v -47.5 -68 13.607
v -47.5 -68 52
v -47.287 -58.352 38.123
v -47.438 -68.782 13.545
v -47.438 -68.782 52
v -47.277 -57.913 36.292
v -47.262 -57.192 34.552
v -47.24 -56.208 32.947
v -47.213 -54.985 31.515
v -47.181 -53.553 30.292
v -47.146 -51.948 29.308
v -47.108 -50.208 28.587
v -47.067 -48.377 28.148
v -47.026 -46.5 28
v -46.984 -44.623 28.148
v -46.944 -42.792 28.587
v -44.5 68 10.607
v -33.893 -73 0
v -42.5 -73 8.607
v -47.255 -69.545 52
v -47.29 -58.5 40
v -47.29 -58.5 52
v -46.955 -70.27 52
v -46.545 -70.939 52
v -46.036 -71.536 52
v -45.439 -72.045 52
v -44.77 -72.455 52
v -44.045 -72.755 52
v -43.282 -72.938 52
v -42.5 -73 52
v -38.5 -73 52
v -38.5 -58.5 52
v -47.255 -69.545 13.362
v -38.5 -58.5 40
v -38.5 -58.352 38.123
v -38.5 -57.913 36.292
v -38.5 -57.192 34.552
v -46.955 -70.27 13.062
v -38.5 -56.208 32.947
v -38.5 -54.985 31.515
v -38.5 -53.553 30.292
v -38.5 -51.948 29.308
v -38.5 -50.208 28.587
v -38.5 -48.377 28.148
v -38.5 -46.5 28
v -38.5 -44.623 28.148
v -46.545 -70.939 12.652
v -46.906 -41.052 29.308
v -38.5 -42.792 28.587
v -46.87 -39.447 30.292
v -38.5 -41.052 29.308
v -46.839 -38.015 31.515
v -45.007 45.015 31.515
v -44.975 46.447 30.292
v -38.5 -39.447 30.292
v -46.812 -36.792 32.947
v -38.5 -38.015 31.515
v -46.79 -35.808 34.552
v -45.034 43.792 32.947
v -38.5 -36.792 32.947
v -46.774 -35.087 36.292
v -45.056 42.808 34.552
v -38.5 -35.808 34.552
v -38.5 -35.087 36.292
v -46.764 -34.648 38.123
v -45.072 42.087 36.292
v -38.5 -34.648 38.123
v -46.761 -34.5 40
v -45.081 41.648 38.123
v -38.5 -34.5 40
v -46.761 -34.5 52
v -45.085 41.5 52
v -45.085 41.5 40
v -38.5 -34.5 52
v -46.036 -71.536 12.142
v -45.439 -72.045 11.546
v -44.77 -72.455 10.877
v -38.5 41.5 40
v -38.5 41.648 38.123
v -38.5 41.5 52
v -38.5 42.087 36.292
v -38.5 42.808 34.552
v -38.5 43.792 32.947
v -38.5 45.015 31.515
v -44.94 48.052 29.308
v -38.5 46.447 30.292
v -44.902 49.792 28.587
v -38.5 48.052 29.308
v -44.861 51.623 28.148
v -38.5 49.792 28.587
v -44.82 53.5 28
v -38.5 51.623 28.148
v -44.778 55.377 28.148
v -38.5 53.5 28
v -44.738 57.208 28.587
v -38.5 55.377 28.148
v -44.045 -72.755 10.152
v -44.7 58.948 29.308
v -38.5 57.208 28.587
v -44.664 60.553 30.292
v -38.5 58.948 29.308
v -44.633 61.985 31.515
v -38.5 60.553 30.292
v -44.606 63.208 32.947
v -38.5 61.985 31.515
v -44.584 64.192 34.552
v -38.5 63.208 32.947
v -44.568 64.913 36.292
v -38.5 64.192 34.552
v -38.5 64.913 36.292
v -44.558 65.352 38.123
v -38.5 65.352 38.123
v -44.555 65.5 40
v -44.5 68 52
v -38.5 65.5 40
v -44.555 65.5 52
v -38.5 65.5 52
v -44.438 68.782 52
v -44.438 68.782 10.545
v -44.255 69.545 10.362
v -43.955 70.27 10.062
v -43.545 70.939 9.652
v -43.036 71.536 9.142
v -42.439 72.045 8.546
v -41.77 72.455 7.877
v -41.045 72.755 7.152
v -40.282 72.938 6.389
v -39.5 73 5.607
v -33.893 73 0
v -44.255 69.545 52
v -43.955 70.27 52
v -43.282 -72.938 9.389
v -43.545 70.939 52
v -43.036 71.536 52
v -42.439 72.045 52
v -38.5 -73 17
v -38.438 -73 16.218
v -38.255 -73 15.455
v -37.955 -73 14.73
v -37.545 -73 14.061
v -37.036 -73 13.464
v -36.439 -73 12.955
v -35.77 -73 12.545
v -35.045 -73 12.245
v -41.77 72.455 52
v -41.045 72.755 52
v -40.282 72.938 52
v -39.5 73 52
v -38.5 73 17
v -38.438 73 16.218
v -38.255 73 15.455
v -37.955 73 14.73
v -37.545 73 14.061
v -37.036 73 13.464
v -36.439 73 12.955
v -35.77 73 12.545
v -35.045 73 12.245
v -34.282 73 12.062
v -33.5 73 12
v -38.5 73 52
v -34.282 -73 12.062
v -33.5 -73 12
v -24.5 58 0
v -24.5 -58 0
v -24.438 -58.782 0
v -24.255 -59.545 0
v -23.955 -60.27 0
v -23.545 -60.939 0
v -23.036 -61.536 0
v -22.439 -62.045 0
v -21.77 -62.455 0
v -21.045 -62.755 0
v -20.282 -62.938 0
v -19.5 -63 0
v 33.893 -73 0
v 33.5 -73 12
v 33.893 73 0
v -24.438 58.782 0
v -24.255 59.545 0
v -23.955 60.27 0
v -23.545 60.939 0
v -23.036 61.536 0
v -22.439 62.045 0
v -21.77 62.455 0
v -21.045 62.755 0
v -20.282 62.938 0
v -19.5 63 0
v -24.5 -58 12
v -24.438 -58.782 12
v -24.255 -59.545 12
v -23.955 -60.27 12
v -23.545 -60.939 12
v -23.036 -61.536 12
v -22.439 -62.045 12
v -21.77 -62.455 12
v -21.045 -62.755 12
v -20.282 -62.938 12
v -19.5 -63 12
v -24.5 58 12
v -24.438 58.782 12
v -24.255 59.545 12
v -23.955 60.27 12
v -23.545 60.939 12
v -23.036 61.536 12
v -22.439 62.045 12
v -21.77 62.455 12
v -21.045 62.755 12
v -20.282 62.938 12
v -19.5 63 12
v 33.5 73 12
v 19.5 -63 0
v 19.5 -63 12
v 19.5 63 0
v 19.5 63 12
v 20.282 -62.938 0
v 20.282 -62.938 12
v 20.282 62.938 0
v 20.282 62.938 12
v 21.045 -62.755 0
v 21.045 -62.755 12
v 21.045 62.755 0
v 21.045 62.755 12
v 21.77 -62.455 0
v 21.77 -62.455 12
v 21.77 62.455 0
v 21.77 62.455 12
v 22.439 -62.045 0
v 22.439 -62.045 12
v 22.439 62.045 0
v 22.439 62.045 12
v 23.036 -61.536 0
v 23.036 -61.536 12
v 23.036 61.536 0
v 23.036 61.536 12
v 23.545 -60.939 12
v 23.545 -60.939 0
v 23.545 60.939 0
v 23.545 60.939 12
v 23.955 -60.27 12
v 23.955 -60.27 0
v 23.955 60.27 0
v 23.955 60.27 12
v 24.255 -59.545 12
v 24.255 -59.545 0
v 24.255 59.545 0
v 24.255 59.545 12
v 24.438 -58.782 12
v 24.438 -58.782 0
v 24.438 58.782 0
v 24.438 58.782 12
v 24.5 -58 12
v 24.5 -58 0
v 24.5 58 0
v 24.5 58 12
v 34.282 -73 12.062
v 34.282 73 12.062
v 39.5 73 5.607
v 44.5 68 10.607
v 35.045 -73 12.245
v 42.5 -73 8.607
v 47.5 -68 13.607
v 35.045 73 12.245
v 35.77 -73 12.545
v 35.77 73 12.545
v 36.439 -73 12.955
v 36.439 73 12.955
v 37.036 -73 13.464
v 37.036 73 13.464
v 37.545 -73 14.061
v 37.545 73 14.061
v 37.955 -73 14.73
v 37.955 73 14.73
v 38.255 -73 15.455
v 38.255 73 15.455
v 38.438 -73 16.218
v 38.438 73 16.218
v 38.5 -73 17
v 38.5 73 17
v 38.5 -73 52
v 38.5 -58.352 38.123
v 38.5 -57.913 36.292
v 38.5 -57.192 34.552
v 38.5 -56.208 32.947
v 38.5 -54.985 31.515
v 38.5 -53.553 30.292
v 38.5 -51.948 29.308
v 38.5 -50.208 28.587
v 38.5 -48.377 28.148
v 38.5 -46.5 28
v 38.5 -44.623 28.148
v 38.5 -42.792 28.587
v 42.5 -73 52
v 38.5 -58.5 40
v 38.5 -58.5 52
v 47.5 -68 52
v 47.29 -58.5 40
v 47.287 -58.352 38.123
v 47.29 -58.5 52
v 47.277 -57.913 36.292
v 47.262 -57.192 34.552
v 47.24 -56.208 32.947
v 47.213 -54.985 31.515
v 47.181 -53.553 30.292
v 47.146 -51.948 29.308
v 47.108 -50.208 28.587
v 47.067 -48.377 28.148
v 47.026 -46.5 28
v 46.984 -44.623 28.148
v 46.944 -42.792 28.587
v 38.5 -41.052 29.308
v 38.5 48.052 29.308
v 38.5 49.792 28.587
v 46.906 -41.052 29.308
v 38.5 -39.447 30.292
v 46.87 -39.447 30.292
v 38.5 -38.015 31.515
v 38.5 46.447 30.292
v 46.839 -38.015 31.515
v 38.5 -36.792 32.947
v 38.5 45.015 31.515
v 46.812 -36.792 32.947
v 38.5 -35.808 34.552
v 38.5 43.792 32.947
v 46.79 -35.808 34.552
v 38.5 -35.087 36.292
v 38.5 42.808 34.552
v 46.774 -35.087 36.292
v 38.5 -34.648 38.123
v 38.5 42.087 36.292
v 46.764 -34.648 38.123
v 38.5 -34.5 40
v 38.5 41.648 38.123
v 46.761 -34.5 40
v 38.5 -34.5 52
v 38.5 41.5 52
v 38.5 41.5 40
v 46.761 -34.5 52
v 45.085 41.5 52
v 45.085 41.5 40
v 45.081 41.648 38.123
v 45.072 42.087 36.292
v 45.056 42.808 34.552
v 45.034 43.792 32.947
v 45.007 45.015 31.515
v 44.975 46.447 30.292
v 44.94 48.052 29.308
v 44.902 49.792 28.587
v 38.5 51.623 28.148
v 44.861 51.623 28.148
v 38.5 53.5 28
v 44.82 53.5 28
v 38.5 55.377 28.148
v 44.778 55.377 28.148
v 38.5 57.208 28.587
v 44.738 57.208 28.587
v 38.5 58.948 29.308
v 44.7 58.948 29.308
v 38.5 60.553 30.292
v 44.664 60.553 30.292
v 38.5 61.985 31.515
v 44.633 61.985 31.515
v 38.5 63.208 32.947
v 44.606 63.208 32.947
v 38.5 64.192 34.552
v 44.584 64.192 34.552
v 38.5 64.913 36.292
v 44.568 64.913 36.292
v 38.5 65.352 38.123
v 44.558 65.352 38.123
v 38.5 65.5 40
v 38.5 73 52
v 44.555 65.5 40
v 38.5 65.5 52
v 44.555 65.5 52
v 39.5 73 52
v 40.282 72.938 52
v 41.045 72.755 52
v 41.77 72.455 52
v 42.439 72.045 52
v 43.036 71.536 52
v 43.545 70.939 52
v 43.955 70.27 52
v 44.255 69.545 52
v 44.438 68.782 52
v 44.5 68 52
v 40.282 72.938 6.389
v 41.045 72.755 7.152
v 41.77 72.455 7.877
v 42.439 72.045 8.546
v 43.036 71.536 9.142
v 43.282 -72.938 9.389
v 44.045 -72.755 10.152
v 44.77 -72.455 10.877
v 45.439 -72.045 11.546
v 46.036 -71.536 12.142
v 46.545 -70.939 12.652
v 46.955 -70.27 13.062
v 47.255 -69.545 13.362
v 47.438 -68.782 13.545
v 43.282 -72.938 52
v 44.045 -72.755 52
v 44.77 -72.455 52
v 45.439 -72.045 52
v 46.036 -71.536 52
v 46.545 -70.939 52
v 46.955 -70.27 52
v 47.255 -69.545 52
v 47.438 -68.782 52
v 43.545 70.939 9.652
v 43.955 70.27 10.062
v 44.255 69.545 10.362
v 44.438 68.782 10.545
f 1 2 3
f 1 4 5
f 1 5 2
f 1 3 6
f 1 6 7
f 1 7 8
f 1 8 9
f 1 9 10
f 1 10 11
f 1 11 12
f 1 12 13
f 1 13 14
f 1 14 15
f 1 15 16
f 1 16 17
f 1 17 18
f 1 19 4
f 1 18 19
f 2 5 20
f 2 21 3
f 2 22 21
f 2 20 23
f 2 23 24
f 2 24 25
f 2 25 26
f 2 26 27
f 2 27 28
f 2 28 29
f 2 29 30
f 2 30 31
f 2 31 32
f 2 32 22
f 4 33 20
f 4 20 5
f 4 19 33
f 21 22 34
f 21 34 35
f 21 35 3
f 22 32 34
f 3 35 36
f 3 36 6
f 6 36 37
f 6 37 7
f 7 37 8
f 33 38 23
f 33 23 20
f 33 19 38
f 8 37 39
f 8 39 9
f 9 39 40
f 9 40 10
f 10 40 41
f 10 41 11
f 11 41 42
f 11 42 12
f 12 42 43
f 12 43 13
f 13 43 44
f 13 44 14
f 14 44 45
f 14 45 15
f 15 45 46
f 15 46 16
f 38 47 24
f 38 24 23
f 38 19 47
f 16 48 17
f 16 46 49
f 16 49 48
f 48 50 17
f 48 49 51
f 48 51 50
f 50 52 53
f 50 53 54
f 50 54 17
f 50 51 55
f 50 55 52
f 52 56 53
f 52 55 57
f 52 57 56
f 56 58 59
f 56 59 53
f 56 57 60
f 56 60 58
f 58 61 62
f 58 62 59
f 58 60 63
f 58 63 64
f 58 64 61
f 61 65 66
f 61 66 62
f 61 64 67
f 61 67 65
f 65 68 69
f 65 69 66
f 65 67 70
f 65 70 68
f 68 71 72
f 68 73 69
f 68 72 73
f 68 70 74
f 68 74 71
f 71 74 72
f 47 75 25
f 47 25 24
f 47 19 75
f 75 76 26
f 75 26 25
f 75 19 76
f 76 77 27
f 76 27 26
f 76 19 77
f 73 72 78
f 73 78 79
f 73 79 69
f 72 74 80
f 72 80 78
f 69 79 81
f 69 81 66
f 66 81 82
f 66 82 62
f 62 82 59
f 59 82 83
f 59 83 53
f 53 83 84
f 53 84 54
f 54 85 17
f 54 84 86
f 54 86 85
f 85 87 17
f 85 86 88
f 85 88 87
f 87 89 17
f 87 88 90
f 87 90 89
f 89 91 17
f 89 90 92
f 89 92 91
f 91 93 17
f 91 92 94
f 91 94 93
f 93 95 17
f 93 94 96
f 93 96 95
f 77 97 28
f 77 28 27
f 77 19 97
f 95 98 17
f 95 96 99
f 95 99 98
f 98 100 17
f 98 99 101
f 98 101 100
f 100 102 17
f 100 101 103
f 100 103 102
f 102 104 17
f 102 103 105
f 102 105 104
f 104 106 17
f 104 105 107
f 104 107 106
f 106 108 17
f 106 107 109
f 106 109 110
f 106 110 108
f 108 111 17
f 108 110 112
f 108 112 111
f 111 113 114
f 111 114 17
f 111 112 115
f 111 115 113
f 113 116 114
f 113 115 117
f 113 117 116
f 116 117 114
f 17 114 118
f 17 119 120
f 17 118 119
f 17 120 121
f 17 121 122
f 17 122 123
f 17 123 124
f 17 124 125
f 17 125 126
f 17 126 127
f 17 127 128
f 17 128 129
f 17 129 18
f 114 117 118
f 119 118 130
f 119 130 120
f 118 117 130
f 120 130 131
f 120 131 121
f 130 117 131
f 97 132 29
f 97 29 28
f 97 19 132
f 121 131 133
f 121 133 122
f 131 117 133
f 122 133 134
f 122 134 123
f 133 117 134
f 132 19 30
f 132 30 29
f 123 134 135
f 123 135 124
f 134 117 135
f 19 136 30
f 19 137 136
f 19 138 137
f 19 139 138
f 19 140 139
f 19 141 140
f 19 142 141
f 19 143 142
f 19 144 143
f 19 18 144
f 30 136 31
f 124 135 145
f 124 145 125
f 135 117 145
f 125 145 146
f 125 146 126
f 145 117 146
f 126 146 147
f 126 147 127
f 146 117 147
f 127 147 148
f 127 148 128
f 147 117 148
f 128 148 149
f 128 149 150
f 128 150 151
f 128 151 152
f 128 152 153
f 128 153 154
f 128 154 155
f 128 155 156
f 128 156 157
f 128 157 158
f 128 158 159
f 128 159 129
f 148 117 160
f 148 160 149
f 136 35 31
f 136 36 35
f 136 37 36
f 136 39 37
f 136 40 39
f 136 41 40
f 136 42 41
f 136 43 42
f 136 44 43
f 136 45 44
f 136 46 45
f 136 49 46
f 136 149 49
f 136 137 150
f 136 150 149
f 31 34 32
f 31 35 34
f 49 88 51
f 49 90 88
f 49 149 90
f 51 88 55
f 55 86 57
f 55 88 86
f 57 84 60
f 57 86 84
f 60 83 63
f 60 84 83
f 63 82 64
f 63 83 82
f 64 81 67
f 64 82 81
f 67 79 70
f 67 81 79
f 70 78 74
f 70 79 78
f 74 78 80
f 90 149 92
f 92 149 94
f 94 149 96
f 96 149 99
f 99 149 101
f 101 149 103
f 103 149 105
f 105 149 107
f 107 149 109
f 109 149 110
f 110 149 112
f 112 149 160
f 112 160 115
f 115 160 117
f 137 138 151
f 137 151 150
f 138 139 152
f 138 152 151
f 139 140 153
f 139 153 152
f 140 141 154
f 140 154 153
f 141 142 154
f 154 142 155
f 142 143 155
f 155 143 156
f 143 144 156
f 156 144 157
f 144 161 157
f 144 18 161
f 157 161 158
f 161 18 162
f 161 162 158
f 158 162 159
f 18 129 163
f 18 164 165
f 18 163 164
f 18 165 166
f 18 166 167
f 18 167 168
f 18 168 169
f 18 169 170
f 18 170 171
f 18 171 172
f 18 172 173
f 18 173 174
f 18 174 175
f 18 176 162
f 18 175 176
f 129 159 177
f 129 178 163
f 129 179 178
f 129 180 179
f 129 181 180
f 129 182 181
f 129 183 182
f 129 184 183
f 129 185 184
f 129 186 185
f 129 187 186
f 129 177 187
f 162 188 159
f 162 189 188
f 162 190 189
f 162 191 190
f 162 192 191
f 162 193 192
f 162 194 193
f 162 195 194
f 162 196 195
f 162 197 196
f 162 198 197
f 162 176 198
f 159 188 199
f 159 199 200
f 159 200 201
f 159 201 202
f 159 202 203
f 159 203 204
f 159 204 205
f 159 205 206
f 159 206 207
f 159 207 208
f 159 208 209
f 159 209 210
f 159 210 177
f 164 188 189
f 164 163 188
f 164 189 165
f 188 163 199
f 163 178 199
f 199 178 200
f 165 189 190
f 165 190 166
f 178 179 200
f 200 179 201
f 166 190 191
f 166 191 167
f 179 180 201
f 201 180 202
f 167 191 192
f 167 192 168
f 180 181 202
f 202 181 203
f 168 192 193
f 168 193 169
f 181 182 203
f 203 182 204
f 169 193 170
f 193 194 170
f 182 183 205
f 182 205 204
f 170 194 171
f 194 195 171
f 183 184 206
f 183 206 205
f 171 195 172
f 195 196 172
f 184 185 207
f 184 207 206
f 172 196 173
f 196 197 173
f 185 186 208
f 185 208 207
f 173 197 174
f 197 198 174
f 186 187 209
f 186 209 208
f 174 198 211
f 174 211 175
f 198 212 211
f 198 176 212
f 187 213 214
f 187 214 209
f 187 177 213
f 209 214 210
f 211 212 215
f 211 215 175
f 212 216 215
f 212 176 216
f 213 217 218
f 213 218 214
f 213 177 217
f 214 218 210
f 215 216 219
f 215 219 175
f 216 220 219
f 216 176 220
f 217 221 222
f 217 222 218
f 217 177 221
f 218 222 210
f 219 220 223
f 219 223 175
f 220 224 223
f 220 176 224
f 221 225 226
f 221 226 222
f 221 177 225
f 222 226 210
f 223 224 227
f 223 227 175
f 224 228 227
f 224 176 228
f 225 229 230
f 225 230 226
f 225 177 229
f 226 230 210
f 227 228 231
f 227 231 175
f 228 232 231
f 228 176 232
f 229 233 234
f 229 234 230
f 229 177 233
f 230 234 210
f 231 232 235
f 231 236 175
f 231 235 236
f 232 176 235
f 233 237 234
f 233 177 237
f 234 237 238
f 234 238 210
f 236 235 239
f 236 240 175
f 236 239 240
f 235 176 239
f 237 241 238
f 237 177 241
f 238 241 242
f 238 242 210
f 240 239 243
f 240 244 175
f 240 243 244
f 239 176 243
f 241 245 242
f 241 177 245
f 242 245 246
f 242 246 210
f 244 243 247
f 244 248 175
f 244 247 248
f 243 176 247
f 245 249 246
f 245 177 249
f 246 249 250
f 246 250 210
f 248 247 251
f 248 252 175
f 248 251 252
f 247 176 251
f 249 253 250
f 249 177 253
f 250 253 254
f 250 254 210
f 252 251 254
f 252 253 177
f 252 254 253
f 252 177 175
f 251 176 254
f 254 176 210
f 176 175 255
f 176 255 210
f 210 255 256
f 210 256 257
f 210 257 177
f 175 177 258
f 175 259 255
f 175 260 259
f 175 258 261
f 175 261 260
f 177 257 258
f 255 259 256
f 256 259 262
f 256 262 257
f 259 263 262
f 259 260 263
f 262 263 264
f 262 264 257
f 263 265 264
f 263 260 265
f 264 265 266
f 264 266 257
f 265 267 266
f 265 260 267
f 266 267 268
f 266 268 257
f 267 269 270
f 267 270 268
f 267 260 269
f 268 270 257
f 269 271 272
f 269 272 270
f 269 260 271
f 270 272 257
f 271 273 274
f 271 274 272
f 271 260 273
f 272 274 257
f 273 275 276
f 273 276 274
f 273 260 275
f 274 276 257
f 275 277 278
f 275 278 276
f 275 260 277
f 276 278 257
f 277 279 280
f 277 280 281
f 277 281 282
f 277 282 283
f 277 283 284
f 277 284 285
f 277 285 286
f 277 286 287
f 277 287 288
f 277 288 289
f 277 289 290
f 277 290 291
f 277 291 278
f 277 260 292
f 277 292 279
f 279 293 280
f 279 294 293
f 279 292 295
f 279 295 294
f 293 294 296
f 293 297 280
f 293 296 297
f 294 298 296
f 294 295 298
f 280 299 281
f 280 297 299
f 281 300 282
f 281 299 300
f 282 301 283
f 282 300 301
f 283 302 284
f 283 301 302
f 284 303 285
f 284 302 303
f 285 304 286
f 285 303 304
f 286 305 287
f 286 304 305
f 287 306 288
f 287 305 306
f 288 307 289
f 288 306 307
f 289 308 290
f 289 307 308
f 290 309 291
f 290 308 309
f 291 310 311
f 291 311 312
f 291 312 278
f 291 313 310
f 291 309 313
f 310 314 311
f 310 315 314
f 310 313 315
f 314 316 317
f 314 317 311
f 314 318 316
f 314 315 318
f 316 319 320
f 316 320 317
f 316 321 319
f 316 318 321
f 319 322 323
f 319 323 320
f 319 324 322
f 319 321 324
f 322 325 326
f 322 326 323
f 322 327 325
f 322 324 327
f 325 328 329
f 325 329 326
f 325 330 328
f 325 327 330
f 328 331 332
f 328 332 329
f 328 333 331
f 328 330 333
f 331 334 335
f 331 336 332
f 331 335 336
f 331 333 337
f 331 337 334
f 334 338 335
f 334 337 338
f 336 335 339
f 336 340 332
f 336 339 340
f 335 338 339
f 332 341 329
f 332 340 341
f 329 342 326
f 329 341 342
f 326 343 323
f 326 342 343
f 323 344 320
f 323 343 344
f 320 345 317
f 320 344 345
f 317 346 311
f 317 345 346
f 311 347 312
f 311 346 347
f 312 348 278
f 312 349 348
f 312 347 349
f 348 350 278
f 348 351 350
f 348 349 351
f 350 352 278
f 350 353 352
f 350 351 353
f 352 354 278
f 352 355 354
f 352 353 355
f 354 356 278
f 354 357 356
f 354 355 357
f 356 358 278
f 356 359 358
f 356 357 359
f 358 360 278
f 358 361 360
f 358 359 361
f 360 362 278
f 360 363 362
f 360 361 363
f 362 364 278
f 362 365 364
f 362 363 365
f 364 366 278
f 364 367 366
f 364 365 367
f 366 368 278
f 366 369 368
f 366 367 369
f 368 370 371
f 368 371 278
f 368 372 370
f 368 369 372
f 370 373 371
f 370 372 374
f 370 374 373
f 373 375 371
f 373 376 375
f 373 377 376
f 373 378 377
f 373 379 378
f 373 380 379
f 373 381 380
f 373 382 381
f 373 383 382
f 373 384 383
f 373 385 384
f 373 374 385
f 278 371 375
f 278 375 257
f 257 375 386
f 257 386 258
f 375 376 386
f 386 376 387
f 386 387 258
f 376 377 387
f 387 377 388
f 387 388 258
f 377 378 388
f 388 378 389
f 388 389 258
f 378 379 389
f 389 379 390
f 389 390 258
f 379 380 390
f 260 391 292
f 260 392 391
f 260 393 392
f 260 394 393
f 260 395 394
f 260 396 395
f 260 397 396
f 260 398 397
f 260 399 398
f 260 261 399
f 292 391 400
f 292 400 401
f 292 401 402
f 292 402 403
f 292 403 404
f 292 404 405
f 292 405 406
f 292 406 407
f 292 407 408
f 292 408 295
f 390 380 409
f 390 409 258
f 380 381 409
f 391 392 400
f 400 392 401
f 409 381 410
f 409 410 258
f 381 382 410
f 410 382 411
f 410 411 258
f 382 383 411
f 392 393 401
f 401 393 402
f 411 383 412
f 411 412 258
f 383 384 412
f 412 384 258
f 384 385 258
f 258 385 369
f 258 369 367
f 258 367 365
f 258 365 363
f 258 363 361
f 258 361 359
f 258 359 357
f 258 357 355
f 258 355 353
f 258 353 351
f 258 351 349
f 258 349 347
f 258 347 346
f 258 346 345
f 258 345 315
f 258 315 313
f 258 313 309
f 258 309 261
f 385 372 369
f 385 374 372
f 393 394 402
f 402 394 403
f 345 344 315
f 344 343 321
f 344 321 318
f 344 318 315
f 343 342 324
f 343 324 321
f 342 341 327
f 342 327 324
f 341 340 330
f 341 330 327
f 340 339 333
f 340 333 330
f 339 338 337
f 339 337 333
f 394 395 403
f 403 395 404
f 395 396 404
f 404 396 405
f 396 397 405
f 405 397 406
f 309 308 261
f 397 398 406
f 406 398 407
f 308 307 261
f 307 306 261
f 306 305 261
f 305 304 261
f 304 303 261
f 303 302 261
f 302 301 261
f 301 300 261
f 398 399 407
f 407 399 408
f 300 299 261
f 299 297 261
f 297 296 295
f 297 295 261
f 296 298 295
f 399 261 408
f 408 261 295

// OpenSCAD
frontWid       = 95;
backWid        = 89;
totWid         = 89;
totLen         = 146;
sideThk        = 6;
bearOpenDia    = 24;
bearCenterDist = 100;
bearCenterHt   = 40;
cornerRad      = 5;
botThk         = 12;

$fn=40;

if (1) difference() {
   hull() {
      translate([-frontWid/2+cornerRad,-totLen/2+cornerRad,0])
         cylinder(r=cornerRad,h=bearCenterHt+bearOpenDia/2);
      translate([-backWid/2+cornerRad,+totLen/2-cornerRad,0])
         cylinder(r=cornerRad,h=bearCenterHt+bearOpenDia/2);
      translate([+frontWid/2-cornerRad,-totLen/2+cornerRad,0])
         cylinder(r=cornerRad,h=bearCenterHt+bearOpenDia/2);
      translate([+backWid/2-cornerRad,+totLen/2-cornerRad,0])
         cylinder(r=cornerRad,h=bearCenterHt+bearOpenDia/2);
   }

   translate([0,0, botThk+5]) hull() {
      rotate([90,0,0]) translate([-(totWid/2)+5+sideThk,0,-(totLen+1)/2])
         cylinder(r=5,h=totLen+1);
      rotate([90,0,0]) translate([(totWid/2)-5-sideThk,0,-(totLen+1)/2])
         cylinder(r=5,h=totLen+1);
      translate([-(totWid-2*sideThk)/2, -(totLen+1)/2, 5]) 
         cube([totWid-2*sideThk,totLen+1, bearCenterHt + bearOpenDia-botThk-5]);
   }

   translate([0,bearCenterDist/2+3.5,bearCenterHt]) rotate([0,-90,0])
      translate([0,0,-(frontWid+5)/2]) {
         cylinder(d=bearOpenDia,h=frontWid+5);
         translate([0,-bearOpenDia/2,0]) cube([bearOpenDia,bearOpenDia, frontWid+5]);
      }
   translate([0,-bearCenterDist/2+3.5,bearCenterHt]) rotate([0,-90,0])
      translate([0,0,-(frontWid+5)/2]) {
         cylinder(d=bearOpenDia,h=frontWid+5);
         translate([0,-bearOpenDia/2,0]) cube([bearOpenDia,bearOpenDia, frontWid+5]);
      }

   hull() {
      translate([-totWid/2+cornerRad+20,-totLen/2+cornerRad+10,-5])
         cylinder(r=cornerRad,h=bearCenterHt+bearOpenDia/2+10);
      translate([-totWid/2+cornerRad+20,+totLen/2-cornerRad-10,-5])
         cylinder(r=cornerRad,h=bearCenterHt+bearOpenDia/2+10);
      translate([+totWid/2-cornerRad-20,-totLen/2+cornerRad+10,-5])
         cylinder(r=cornerRad,h=bearCenterHt+bearOpenDia/2+10);
      translate([+totWid/2-cornerRad-20,+totLen/2-cornerRad-10,-5])
         cylinder(r=cornerRad,h=bearCenterHt+bearOpenDia/2+10);
   }
   
   translate([-totWid/2,0,0]) rotate([0,-45,0]) cube([15,totLen+2,30],center=true);
   translate([totWid/2,0,0]) rotate([0,45,0]) cube([15,totLen+2,30],center=true);
}

if (0) {
   translate([0,0,0]) roller(backWid+3);
   translate([30,0,0]) roller(frontWid);
}

module roller(len) {
   endDia   = 8.3;
   midDia   = 9.5;
   endLen   = 7;
   taperLen = 1;
  
   translate([0,0,0]) cylinder(d=endDia,h=endLen+0.01);
   translate([0,0,endLen]) cylinder(d1=endDia,d2=midDia,h=taperLen+0.01);
   translate([0,0,endLen+taperLen]) cylinder(d=midDia,h=len - 2*endLen - 2*taperLen + 0.01);
   translate([0,0,len-endLen-taperLen]) cylinder(d1=midDia,d2=endDia,h=taperLen+0.01);
   translate([0,0,len-endLen]) cylinder(d=endDia,h=endLen);
}
